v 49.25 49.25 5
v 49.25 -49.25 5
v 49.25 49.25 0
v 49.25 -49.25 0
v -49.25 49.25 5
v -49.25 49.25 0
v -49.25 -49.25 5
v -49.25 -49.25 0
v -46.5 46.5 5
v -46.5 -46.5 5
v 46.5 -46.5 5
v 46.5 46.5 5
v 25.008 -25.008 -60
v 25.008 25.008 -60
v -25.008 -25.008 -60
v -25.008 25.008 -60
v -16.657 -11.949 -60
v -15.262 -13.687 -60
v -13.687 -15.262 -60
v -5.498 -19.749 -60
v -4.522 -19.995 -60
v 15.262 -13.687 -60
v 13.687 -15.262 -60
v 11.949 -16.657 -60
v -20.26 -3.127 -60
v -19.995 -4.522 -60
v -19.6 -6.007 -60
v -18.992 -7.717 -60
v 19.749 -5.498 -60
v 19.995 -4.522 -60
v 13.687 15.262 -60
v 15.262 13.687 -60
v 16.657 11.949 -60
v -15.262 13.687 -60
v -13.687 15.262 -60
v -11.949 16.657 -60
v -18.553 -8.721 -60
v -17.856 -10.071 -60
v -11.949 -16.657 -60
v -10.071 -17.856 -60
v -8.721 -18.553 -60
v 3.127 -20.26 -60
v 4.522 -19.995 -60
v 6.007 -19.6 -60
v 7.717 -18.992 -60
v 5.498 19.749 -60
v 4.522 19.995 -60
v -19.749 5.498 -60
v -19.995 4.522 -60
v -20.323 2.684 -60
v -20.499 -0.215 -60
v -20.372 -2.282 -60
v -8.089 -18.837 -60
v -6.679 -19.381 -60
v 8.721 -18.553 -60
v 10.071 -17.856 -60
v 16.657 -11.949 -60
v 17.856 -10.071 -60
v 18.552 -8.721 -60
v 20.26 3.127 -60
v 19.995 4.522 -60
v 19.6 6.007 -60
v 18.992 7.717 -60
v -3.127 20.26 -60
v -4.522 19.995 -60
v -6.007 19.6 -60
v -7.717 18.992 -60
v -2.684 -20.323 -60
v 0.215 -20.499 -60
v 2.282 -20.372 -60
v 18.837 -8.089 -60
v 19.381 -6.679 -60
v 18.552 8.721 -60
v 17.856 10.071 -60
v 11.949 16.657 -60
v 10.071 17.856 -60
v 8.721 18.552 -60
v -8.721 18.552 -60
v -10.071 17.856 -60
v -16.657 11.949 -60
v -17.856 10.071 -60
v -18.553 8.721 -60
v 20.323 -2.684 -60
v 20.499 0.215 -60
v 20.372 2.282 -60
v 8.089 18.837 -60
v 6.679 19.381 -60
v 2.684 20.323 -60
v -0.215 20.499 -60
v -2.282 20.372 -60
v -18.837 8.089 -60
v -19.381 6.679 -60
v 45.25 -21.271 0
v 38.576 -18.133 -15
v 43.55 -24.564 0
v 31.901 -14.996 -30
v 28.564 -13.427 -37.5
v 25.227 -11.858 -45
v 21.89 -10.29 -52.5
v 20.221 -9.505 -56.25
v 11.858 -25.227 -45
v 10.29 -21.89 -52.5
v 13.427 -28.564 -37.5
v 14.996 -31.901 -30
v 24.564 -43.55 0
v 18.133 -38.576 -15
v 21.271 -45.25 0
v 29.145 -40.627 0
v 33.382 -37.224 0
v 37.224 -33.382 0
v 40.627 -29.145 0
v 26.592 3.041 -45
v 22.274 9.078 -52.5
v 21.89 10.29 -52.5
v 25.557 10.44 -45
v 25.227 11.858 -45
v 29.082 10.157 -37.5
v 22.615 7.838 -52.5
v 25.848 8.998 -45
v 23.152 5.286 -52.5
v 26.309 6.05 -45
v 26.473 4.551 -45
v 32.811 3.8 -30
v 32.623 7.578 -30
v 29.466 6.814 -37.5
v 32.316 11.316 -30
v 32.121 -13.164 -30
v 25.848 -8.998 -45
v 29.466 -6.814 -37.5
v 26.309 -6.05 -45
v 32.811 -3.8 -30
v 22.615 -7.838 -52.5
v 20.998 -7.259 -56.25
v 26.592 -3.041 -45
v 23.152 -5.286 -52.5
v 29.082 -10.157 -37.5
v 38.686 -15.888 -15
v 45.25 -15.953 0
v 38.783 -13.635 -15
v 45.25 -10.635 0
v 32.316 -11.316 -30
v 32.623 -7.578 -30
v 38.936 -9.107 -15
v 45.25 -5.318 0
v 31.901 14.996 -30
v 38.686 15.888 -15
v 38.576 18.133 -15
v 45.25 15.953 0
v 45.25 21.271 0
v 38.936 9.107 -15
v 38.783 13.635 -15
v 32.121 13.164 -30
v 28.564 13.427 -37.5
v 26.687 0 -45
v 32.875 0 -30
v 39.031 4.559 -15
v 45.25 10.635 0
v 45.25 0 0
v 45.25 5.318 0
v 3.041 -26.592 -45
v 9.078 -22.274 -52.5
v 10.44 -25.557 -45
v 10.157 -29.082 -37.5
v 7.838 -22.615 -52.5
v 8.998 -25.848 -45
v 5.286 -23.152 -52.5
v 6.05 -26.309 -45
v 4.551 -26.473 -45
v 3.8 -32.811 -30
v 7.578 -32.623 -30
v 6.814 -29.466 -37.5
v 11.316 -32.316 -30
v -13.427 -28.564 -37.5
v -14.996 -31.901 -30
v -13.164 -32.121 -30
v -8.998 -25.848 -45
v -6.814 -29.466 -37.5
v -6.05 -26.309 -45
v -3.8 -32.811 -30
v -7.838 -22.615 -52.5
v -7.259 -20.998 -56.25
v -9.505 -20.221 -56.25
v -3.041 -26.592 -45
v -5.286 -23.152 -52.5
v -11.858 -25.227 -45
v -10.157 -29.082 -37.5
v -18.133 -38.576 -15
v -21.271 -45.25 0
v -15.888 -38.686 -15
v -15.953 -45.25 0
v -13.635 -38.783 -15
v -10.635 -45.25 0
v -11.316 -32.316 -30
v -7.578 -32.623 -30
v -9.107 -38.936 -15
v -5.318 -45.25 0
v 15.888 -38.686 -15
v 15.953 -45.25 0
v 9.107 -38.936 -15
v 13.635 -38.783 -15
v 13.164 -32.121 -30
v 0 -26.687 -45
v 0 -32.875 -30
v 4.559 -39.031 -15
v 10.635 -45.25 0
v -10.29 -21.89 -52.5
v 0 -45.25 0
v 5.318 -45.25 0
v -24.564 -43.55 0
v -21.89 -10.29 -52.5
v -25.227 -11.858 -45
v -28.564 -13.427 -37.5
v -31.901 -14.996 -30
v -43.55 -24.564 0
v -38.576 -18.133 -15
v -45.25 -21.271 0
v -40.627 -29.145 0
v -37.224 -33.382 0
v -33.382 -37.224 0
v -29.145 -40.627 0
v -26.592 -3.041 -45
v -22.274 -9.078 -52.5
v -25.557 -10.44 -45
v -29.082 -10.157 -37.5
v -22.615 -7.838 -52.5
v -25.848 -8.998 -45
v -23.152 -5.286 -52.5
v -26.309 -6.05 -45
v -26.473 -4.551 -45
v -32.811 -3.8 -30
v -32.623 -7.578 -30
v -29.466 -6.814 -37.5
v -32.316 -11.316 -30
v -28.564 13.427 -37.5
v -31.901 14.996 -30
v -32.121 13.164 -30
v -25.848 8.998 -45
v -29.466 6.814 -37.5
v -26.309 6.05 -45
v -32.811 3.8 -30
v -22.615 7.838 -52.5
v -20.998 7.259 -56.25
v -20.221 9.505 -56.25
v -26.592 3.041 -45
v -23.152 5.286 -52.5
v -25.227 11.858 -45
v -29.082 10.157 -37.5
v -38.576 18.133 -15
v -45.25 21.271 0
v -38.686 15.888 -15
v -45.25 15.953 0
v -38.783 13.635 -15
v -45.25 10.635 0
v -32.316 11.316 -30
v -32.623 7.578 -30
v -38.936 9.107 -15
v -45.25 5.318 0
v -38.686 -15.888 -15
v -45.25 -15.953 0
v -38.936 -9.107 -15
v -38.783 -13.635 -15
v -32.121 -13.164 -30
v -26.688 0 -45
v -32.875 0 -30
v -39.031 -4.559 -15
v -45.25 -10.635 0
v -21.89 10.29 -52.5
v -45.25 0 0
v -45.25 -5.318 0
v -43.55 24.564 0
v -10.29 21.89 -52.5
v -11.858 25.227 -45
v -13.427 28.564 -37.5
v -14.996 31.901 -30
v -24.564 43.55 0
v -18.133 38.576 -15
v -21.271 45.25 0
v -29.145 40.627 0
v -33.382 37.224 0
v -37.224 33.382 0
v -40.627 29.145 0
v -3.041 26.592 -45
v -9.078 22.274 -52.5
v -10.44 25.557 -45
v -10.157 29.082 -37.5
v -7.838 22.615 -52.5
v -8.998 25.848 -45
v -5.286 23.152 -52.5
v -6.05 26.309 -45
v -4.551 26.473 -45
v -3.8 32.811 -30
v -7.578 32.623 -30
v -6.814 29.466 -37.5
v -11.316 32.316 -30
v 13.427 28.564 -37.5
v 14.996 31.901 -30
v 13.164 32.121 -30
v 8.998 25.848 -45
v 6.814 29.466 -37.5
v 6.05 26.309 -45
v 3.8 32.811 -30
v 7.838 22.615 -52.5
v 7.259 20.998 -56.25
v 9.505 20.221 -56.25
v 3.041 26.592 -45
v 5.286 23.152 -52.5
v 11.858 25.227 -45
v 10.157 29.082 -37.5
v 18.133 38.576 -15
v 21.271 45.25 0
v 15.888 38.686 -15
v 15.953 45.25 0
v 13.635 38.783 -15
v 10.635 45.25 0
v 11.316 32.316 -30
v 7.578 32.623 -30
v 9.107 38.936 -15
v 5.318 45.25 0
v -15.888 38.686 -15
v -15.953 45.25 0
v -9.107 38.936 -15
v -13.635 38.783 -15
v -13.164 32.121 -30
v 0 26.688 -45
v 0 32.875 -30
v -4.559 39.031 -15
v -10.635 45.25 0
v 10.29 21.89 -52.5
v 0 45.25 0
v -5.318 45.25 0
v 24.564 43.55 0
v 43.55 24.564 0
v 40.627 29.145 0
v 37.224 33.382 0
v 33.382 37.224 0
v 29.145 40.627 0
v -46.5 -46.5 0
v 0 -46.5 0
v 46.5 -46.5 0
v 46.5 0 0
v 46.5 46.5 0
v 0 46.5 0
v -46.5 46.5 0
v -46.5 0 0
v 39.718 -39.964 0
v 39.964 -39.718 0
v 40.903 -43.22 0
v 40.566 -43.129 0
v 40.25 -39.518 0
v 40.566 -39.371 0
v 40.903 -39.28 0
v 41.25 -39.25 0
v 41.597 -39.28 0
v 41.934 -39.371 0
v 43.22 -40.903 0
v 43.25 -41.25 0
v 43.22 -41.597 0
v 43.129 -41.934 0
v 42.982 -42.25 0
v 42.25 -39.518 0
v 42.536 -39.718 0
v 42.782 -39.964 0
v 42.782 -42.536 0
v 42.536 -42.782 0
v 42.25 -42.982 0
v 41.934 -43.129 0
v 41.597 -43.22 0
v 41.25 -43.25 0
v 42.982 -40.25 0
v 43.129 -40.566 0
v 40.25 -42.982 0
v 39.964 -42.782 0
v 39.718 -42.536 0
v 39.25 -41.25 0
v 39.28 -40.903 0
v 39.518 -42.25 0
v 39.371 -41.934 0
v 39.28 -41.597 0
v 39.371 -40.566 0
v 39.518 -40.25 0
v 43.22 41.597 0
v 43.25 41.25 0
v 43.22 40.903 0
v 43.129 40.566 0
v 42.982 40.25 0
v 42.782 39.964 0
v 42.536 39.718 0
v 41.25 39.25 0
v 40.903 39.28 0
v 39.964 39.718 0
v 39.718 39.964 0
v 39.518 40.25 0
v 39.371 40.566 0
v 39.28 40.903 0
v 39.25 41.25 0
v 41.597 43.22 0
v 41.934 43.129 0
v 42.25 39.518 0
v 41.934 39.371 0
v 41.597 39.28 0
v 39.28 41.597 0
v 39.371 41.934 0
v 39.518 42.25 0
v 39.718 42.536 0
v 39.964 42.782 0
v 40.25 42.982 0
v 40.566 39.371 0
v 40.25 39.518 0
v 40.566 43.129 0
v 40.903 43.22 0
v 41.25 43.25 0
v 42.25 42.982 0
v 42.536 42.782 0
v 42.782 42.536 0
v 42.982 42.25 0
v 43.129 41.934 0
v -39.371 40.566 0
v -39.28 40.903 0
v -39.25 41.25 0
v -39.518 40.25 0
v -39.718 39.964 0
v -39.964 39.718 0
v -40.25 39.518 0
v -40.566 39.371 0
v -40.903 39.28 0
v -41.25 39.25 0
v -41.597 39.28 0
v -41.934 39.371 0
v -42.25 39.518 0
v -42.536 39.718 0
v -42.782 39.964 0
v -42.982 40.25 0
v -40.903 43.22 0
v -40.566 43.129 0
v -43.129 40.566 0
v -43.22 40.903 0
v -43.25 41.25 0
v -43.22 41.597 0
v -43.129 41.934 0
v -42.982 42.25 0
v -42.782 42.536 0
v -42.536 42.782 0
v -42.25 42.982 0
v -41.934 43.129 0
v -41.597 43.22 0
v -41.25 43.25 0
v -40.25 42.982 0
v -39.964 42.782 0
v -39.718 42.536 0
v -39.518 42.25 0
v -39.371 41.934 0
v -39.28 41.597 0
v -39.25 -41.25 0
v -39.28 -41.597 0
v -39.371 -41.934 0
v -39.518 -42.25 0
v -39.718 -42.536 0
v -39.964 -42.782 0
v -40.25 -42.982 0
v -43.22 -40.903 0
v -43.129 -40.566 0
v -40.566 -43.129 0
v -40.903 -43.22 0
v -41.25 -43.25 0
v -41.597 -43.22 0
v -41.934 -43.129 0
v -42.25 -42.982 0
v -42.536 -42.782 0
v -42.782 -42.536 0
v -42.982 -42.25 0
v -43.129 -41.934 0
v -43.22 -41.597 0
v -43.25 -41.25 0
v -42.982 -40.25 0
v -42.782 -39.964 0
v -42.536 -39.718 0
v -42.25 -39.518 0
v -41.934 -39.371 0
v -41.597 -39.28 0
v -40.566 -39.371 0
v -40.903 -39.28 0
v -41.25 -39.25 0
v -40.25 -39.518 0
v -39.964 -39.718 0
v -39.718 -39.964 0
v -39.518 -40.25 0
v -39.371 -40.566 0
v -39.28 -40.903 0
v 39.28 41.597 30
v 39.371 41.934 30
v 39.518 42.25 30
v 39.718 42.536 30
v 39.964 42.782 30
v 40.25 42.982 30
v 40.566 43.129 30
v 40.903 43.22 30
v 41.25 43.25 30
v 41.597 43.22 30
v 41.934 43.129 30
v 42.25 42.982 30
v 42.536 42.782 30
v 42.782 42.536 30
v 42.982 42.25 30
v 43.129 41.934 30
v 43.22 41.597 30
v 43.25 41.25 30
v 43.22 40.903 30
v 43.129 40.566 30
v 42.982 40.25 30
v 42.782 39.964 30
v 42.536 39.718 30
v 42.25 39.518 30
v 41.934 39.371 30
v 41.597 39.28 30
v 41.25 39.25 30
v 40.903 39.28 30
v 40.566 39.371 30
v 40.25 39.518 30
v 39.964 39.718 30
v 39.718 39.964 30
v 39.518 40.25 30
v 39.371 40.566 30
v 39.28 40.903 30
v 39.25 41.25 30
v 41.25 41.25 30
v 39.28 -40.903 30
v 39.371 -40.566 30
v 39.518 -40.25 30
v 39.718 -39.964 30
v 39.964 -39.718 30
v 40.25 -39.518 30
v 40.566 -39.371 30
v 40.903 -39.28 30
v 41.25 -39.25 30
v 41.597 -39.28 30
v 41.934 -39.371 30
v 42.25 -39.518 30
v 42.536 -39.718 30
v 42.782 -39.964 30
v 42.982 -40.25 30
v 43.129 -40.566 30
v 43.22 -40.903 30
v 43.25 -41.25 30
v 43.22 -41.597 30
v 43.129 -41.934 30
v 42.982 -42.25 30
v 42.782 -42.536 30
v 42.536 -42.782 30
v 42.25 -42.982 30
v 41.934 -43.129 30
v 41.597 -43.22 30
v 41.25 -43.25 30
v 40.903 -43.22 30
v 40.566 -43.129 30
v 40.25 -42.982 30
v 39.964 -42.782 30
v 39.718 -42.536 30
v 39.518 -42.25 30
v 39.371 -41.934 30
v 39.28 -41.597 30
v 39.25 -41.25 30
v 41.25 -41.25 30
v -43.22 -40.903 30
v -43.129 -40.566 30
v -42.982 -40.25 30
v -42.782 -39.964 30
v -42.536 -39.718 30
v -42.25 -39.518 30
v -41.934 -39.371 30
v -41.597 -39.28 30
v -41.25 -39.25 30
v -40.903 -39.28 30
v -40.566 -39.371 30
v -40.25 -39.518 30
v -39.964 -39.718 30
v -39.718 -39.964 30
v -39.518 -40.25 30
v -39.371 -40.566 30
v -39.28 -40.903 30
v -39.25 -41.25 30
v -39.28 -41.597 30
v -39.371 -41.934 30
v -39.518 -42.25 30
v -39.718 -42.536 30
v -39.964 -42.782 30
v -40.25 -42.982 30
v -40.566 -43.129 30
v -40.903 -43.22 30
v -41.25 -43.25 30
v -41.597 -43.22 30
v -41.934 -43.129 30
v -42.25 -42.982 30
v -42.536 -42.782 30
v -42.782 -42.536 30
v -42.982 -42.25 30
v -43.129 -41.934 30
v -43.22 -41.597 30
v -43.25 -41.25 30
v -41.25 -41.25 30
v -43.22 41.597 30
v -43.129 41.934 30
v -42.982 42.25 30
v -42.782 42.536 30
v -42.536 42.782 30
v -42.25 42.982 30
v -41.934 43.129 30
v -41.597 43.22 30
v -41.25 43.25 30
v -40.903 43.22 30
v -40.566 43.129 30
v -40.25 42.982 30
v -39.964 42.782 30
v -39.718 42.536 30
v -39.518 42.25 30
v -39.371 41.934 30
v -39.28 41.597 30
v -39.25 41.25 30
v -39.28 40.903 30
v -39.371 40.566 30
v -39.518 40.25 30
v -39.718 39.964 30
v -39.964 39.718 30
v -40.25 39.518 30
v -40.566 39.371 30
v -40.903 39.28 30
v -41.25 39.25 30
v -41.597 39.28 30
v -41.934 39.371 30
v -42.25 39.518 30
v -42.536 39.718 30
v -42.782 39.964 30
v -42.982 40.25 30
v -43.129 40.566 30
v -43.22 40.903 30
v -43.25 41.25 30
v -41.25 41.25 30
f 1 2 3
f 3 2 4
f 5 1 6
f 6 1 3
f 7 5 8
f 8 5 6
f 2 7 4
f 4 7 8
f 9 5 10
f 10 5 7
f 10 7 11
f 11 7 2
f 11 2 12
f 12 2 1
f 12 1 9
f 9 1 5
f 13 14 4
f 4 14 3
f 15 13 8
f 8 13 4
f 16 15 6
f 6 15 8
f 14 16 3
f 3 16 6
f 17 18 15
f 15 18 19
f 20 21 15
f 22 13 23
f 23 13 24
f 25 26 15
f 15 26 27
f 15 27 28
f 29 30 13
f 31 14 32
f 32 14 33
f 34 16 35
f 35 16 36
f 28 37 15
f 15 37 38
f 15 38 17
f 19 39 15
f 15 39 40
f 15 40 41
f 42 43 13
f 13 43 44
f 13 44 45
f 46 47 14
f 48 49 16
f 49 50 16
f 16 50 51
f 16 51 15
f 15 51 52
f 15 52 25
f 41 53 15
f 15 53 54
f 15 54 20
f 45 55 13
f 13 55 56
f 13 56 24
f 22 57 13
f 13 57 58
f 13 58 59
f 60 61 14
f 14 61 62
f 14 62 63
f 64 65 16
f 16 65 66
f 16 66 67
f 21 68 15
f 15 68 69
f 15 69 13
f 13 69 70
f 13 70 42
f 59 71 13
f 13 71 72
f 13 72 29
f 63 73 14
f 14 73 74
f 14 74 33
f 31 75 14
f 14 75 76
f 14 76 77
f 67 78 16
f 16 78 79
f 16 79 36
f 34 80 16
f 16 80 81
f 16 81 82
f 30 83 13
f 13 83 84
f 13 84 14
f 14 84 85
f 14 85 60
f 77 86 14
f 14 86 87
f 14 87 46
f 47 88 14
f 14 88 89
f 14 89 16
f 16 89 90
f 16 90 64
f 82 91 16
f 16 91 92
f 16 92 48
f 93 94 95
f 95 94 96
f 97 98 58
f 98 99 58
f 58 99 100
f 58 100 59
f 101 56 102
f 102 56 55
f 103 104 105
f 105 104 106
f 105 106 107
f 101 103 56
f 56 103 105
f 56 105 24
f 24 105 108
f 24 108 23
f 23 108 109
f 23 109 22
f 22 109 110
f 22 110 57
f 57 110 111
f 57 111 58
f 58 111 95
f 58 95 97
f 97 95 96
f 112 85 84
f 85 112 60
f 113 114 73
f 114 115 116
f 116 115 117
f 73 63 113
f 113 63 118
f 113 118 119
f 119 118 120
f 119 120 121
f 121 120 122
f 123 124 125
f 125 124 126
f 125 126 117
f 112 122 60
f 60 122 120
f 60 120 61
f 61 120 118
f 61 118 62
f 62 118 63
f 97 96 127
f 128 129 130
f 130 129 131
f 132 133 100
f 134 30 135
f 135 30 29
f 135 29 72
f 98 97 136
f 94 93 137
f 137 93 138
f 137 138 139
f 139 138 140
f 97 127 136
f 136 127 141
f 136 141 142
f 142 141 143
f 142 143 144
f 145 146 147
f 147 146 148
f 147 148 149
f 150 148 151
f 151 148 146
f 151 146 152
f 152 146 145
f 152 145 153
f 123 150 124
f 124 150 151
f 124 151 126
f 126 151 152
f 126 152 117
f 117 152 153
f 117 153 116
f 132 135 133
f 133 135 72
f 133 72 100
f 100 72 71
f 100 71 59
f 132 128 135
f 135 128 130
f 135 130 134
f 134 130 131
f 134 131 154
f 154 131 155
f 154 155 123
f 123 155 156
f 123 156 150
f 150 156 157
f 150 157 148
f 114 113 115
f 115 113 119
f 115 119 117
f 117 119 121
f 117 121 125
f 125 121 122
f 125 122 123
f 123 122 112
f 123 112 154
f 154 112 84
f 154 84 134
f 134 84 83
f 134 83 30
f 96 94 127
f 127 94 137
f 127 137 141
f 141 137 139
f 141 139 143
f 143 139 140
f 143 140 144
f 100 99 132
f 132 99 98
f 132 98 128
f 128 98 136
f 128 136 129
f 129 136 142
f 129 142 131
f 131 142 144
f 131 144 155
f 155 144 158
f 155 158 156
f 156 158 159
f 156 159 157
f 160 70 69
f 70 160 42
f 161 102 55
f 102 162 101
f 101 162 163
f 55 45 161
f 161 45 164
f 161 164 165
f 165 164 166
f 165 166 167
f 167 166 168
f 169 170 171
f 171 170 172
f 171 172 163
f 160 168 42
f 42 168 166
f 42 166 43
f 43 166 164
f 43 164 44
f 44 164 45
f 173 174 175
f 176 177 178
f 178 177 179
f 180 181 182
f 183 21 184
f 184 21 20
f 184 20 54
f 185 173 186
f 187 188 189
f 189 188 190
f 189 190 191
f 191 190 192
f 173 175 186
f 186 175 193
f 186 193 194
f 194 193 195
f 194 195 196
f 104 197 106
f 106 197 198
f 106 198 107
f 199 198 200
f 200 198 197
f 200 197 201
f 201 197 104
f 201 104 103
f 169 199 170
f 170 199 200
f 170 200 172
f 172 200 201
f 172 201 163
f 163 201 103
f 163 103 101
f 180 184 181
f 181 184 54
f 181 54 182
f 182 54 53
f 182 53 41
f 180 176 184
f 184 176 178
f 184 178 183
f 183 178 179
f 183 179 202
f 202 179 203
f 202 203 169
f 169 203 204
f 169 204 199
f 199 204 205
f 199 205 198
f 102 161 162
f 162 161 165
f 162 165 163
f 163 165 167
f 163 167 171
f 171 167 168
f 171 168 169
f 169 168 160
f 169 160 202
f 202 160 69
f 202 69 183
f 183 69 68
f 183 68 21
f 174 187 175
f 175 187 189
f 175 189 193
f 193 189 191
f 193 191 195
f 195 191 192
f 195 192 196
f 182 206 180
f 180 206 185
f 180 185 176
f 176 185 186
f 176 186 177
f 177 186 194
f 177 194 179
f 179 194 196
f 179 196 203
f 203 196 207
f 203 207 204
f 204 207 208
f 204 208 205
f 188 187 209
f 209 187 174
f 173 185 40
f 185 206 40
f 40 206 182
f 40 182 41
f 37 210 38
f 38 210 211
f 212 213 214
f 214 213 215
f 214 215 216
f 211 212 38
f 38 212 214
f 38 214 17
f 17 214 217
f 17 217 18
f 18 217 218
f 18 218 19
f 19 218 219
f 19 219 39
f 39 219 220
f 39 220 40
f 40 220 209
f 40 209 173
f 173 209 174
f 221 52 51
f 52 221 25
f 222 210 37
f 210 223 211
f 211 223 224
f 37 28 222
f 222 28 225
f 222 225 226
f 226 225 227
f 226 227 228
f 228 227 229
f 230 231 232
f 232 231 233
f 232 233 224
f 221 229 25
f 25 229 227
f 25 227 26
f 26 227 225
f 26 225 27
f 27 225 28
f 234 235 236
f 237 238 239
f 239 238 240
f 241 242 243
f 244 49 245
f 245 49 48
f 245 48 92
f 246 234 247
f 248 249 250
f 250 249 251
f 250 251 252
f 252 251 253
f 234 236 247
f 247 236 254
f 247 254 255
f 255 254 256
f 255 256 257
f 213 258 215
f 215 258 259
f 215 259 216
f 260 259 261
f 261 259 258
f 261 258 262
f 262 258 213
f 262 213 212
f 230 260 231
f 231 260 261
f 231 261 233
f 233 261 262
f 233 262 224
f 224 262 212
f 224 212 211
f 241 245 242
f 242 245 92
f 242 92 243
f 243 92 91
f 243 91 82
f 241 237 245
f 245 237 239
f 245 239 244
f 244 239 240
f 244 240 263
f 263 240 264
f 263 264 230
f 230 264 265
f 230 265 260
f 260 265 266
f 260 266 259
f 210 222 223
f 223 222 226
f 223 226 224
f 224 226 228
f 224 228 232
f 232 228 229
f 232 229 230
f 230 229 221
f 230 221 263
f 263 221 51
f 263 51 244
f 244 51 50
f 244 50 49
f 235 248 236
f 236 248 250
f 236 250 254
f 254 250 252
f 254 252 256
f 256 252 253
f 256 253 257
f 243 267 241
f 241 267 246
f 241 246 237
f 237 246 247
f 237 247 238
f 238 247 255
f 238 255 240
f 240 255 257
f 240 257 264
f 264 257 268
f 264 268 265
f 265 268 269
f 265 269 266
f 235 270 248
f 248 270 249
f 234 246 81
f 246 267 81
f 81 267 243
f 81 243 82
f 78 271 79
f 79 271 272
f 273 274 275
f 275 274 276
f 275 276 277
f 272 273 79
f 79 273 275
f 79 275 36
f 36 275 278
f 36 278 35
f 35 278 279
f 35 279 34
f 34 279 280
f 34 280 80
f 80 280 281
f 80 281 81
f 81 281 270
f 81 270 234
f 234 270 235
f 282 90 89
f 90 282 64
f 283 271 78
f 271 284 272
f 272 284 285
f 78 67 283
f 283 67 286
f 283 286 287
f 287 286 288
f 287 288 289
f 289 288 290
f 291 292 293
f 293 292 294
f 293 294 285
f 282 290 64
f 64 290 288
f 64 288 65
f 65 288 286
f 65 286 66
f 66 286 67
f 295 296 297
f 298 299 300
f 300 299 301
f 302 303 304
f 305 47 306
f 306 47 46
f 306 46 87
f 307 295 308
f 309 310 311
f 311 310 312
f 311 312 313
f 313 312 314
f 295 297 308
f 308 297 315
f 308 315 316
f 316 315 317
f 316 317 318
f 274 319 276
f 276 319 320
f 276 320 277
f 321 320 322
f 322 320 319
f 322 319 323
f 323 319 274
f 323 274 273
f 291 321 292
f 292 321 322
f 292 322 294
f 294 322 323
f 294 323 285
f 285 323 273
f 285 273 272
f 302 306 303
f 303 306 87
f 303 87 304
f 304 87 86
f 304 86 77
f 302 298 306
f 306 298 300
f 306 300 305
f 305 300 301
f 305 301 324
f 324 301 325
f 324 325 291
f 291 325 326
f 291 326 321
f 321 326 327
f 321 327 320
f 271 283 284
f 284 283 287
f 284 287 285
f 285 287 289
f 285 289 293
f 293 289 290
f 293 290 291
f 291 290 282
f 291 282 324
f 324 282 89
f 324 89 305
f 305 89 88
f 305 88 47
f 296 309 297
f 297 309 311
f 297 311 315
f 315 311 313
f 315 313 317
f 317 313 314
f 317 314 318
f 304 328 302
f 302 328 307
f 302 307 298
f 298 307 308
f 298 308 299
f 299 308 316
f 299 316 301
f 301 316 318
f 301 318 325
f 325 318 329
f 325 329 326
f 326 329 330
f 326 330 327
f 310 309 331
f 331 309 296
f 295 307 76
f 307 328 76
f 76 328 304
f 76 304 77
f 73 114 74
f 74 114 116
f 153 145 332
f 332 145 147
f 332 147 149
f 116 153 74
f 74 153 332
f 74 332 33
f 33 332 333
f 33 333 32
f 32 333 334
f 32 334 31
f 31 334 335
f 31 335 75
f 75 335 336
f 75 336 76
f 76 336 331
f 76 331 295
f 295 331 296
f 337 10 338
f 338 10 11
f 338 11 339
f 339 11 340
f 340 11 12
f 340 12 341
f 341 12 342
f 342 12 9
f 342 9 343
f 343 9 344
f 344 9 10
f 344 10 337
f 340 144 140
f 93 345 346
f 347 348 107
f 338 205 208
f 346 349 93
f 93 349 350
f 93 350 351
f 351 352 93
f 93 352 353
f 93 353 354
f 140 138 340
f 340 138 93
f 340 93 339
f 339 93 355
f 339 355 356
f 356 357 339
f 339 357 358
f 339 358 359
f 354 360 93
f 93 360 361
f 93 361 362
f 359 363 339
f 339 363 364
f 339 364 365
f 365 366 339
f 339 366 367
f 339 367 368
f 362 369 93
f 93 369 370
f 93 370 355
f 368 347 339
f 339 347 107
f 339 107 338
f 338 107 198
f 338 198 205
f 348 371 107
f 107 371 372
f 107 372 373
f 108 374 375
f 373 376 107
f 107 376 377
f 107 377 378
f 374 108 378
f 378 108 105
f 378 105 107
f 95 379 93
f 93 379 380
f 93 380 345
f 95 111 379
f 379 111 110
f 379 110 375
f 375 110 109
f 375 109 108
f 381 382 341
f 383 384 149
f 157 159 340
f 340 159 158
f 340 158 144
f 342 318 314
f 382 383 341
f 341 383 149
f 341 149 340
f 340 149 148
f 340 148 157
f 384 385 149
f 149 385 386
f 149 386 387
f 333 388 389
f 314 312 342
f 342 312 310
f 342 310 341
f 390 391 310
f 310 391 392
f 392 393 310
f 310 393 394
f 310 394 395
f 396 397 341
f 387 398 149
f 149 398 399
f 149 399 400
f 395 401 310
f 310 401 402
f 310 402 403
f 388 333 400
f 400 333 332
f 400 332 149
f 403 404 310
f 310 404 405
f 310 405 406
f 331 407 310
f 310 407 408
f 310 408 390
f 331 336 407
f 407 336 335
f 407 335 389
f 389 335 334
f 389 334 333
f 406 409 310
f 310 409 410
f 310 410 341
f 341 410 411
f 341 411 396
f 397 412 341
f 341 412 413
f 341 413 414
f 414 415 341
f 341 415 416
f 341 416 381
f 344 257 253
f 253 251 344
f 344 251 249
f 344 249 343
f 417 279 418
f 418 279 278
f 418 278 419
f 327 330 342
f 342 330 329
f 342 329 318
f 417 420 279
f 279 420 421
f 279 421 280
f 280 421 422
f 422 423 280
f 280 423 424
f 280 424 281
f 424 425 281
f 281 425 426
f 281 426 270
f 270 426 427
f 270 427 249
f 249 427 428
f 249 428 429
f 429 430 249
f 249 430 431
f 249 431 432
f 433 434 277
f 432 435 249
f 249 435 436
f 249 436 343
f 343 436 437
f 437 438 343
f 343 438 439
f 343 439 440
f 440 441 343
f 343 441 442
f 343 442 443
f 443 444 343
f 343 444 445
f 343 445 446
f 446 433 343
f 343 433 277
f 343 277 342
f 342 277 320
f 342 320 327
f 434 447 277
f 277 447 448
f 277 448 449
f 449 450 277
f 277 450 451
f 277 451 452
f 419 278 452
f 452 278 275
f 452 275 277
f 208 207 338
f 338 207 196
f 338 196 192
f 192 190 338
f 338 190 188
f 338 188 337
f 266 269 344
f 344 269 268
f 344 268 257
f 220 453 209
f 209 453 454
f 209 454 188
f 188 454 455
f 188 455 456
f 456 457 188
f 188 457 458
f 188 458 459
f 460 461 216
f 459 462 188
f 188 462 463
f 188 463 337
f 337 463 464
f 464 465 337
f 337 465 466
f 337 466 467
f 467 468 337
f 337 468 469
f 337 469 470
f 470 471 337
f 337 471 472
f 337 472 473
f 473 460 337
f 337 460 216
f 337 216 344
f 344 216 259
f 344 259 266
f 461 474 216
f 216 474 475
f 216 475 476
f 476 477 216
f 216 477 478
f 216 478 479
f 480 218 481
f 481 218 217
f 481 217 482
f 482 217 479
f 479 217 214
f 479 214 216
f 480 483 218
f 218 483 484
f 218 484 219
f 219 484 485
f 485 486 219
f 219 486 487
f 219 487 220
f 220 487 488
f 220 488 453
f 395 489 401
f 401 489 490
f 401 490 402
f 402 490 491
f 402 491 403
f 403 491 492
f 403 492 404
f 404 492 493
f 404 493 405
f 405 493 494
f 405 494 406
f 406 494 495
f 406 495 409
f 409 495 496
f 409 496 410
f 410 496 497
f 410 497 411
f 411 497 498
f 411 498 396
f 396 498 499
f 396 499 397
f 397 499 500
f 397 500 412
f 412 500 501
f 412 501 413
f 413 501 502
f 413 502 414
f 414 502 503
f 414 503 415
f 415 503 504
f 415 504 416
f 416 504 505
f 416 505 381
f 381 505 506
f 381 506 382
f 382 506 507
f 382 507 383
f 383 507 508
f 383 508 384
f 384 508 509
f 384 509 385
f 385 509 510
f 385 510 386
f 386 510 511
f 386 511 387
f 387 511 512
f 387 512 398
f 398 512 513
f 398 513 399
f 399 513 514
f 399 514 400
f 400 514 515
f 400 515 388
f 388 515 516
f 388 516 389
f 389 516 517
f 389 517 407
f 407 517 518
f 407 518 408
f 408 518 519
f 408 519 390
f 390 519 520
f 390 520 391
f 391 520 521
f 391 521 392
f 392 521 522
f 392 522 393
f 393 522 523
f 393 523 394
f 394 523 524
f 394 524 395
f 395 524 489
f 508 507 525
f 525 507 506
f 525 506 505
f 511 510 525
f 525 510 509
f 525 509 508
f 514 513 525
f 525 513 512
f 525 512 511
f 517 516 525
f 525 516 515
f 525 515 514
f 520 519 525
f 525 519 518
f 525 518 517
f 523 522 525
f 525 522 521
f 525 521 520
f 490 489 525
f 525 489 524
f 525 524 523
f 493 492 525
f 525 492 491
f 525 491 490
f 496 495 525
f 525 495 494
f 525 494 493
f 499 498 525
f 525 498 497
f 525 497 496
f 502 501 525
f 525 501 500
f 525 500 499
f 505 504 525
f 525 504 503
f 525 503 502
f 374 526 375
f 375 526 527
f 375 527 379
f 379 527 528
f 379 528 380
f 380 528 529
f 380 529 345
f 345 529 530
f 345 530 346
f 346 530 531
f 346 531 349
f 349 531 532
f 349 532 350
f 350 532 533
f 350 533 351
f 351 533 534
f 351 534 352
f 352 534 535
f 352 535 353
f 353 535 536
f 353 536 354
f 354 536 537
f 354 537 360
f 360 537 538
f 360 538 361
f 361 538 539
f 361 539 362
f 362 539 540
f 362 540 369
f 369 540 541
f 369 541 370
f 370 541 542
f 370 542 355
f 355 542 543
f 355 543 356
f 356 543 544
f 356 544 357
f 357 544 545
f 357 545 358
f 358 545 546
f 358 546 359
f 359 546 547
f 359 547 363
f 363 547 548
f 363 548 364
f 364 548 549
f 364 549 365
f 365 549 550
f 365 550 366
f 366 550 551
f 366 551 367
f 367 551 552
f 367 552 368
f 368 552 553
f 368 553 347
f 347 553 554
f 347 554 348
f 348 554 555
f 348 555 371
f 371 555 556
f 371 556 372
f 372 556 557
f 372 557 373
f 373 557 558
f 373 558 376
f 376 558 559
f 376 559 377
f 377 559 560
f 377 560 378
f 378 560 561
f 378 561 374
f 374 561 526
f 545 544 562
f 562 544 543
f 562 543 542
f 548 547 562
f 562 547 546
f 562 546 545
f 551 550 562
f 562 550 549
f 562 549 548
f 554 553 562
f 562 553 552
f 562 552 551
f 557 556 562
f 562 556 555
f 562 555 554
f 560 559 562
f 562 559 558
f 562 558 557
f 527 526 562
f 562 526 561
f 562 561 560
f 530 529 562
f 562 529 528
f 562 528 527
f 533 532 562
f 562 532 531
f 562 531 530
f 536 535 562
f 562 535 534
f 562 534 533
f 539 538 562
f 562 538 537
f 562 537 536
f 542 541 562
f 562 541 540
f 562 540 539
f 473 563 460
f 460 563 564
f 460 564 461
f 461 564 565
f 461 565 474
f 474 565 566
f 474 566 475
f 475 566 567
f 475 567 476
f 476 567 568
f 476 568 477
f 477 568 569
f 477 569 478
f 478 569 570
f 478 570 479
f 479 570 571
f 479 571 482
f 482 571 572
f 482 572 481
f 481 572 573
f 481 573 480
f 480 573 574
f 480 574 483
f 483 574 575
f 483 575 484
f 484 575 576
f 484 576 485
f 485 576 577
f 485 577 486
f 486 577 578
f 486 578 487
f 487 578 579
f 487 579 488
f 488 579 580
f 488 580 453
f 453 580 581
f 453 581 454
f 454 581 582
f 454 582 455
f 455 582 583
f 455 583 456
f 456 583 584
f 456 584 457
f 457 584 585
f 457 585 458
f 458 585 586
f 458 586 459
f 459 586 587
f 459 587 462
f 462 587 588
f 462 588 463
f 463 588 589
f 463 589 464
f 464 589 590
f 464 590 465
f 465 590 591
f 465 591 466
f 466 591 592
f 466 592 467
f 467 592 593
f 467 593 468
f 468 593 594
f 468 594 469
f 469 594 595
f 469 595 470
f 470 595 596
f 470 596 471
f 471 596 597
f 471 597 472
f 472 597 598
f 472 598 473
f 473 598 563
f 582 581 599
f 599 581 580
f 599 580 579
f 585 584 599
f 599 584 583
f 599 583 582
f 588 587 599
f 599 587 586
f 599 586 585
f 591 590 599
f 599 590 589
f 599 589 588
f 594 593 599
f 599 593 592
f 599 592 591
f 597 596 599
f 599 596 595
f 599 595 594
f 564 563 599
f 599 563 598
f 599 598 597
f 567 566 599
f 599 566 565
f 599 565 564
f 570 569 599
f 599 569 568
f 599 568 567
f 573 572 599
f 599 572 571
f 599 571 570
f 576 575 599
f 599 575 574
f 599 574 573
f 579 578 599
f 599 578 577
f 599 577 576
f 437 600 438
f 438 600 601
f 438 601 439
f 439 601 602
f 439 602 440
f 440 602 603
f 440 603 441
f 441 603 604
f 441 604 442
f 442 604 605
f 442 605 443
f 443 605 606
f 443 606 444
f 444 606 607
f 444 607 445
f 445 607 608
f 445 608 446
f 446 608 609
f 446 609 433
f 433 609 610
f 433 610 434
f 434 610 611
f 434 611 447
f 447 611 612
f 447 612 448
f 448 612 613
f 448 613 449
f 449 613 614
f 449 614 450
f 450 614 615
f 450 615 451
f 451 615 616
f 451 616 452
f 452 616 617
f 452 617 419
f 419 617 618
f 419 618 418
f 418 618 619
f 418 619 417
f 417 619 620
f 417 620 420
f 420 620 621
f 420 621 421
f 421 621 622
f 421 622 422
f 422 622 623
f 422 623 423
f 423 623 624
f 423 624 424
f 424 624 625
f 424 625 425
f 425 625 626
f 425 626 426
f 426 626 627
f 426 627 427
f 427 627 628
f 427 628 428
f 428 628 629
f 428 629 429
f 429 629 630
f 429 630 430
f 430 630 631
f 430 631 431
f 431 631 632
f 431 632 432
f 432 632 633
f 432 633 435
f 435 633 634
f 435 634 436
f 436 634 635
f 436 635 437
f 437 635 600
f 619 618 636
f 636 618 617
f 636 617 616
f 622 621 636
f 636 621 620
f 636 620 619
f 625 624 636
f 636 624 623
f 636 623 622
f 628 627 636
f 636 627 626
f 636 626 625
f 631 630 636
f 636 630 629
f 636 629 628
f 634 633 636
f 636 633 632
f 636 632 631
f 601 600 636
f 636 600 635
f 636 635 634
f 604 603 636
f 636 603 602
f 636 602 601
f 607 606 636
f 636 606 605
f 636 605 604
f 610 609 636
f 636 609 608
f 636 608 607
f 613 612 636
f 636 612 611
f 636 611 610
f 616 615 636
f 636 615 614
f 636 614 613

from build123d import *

# Parameters (mm, degrees)
SKIZZE1_W                       = 98.5
SKIZZE1_H                       = 98.5
SKIZZE1_W_2                     = 90.5
SKIZZE1_H_2                     = 90.5
AUFSATZ_LINEAR_AUSTRAGEN2_DEPTH = 5
SKIZZE6_W                       = 98.5
SKIZZE6_H                       = 98.5
AUFSATZ_LINEAR_AUSTRAGEN4_DEPTH = 60
AUFSATZ_LINEAR_AUSTRAGEN4_TAPER = 22
SKIZZE7_W                       = 93
SKIZZE7_H                       = 93
SCHNITT_LINEAR_AUSTRAGEN1_DEPTH = 5
SKIZZE10_R                      = 2
AUFSATZ_LINEAR_AUSTRAGEN5_DEPTH = 30


with BuildPart() as part:
    # Skizze1 → Aufsatz-Linear austragen2 (new body)
    # profile 1 of 5: a face of its own
    with BuildSketch(Plane.XY):
        Rectangle(SKIZZE1_W, SKIZZE1_H)
        Rectangle(SKIZZE1_W_2, SKIZZE1_H_2, mode=Mode.SUBTRACT)
    # profile 2 of 5: a face of its own
    with BuildSketch(Plane.XY):
        with BuildLine():
            Line((-45.25, 45.25), (-45.25, 21.270578271))
            ThreePointArc((-45.25, 21.270578271), (-35.355339059, 35.355339059), (-21.270578271, 45.25))
            Line((-21.270578271, 45.25), (-45.25, 45.25))
        make_face()
    # profile 3 of 5: a face of its own
    with BuildSketch(Plane.XY):
        with BuildLine():
            ThreePointArc((21.270578271, 45.25), (35.355339059, 35.355339059), (45.25, 21.270578271))
            Line((45.25, 21.270578271), (45.25, 45.25))
            Line((45.25, 45.25), (21.270578271, 45.25))
        make_face()
    # profile 4 of 5: a face of its own
    with BuildSketch(Plane.XY):
        with BuildLine():
            ThreePointArc((45.25, -21.270578271), (35.355339059, -35.355339059), (21.270578271, -45.25))
            Line((21.270578271, -45.25), (45.25, -45.25))
            Line((45.25, -45.25), (45.25, -21.270578271))
        make_face()
    # profile 5 of 5: a face of its own
    with BuildSketch(Plane.XY):
        with BuildLine():
            Line((-45.25, -21.270578271), (-45.25, -45.25))
            Line((-45.25, -45.25), (-21.270578271, -45.25))
            ThreePointArc((-21.270578271, -45.25), (-35.355339059, -35.355339059), (-45.25, -21.270578271))
        make_face()
    extrude(amount=AUFSATZ_LINEAR_AUSTRAGEN2_DEPTH)

    # Skizze6 → Aufsatz-Linear austragen4 (add)
    with BuildSketch(Plane(origin=(0, 0, 0), x_dir=(-1, 0, 0), z_dir=(0, 0, -1))):
        Rectangle(SKIZZE6_W, SKIZZE6_H)
    extrude(amount=AUFSATZ_LINEAR_AUSTRAGEN4_DEPTH, taper=AUFSATZ_LINEAR_AUSTRAGEN4_TAPER)

    # Schnitt-Ausformung4: read off the stored shape, not the designer's step
    # Schnitt-Ausformung4: loft between two sections, ruled curve by curve
    schnitt_ausformung4_from = [
        Edge.make_bspline([(45.25, 21.270578271, 0), (45.25, 17.725481893, 0), (45.25, 14.180385514, 0), (45.25, 7.090192757, 0), (45.25, 3.545096379, 0), (45.25, -3.545096379, 0), (45.25, -7.090192757, 0), (45.25, -14.180385514, 0), (45.25, -17.725481893, 0), (45.25, -21.270578271, 0)], [0, 0, 0, 0, 0.25, 0.25, 0.5, 0.5, 0.75, 0.75, 1, 1, 1, 1], 3),
        Edge.make_bspline([(21.270578271, -45.25, 0), (17.725481893, -45.25, 0), (14.180385514, -45.25, 0), (7.090192757, -45.25, 0), (3.545096379, -45.25, 0), (-3.545096379, -45.25, 0), (-7.090192757, -45.25, 0), (-14.180385514, -45.25, 0), (-17.725481893, -45.25, 0), (-21.270578271, -45.25, 0)], [0, 0, 0, 0, 0.25, 0.25, 0.5, 0.5, 0.75, 0.75, 1, 1, 1, 1], 3),
        Edge.make_bspline([(-45.25, -21.270578271, 0), (-45.25, -17.725481893, 0), (-45.25, -14.180385514, 0), (-45.25, -7.090192757, 0), (-45.25, -3.545096379, 0), (-45.25, 3.545096379, 0), (-45.25, 7.090192757, 0), (-45.25, 14.180385514, 0), (-45.25, 17.725481893, 0), (-45.25, 21.270578271, 0)], [0, 0, 0, 0, 0.25, 0.25, 0.5, 0.5, 0.75, 0.75, 1, 1, 1, 1], 3),
        Edge.make_bspline([(-21.270578271, 45.25, 0), (-17.725481893, 45.25, 0), (-14.180385514, 45.25, 0), (-7.090192757, 45.25, 0), (-3.545096379, 45.25, 0), (3.545096379, 45.25, 0), (7.090192757, 45.25, 0), (14.180385514, 45.25, 0), (17.725481893, 45.25, 0), (21.270578271, 45.25, 0)], [0, 0, 0, 0, 0.25, 0.25, 0.5, 0.5, 0.75, 0.75, 1, 1, 1, 1], 3),
        Edge.make_three_point_arc((21.270578271, -45.25, 0), (35.355339059, -35.355339059, 0), (45.25, -21.270578271, 0)),
        Edge.make_three_point_arc((-45.25, -21.270578271, 0), (-35.355339059, -35.355339059, 0), (-21.270578271, -45.25, 0)),
        Edge.make_three_point_arc((-21.270578271, 45.25, 0), (-35.355339059, 35.355339059, 0), (-45.25, 21.270578271, 0)),
        Edge.make_three_point_arc((45.25, 21.270578271, 0), (35.355339059, 35.355339059, 0), (21.270578271, 45.25, 0)),
    ]
    schnitt_ausformung4_to = [
        Edge.make_bspline([(18.5525, 8.720937091, -60), (19.17083125, 7.40552908, -60), (19.662710025, 5.991613705, -60), (20.327568653, 3.051483732, -60), (20.5, 1.525973244, -60), (20.5, -1.525973244, -60), (20.327568653, -3.051483732, -60), (19.662710025, -5.991613705, -60), (19.17083125, -7.40552908, -60), (18.5525, -8.720937091, -60)], [0, 0, 0, 0, 0.25, 0.25, 0.5, 0.5, 0.75, 0.75, 1, 1, 1, 1], 3),
        Edge.make_bspline([(8.720937091, -18.5525, -60), (7.40552908, -19.17083125, -60), (5.991613705, -19.662710025, -60), (3.051483732, -20.327568653, -60), (1.525973244, -20.5, -60), (-1.525973244, -20.5, -60), (-3.051483732, -20.327568653, -60), (-5.991613705, -19.662710025, -60), (-7.40552908, -19.17083125, -60), (-8.720937091, -18.5525, -60)], [0, 0, 0, 0, 0.25, 0.25, 0.5, 0.5, 0.75, 0.75, 1, 1, 1, 1], 3),
        Edge.make_bspline([(-18.5525, -8.720937091, -60), (-19.17083125, -7.40552908, -60), (-19.662710025, -5.991613705, -60), (-20.327568653, -3.051483732, -60), (-20.5, -1.525973244, -60), (-20.5, 1.525973244, -60), (-20.327568653, 3.051483732, -60), (-19.662710025, 5.991613705, -60), (-19.17083125, 7.40552908, -60), (-18.5525, 8.720937091, -60)], [0, 0, 0, 0, 0.25, 0.25, 0.5, 0.5, 0.75, 0.75, 1, 1, 1, 1], 3),
        Edge.make_bspline([(-8.720937091, 18.5525, -60), (-7.40552908, 19.17083125, -60), (-5.991613705, 19.662710025, -60), (-3.051483732, 20.327568653, -60), (-1.525973244, 20.5, -60), (1.525973244, 20.5, -60), (3.051483732, 20.327568653, -60), (5.991613705, 19.662710025, -60), (7.40552908, 19.17083125, -60), (8.720937091, 18.5525, -60)], [0, 0, 0, 0, 0.25, 0.25, 0.5, 0.5, 0.75, 0.75, 1, 1, 1, 1], 3),
        Edge.make_three_point_arc((8.720937091, -18.5525, -60), (14.495689014, -14.495689014, -60), (18.5525, -8.720937091, -60)),
        Edge.make_three_point_arc((-18.5525, -8.720937091, -60), (-14.495689014, -14.495689014, -60), (-8.720937091, -18.5525, -60)),
        Edge.make_three_point_arc((-8.720937091, 18.5525, -60), (-14.495689014, 14.495689014, -60), (-18.5525, 8.720937091, -60)),
        Edge.make_three_point_arc((18.5525, 8.720937091, -60), (14.495689014, 14.495689014, -60), (8.720937091, 18.5525, -60)),
    ]
    schnitt_ausformung4 = Solid(Shell([*[Face.make_surface_from_curves(schnitt_ausformung4_from[k], schnitt_ausformung4_to[k]) for k in range(8)], Face(Wire(schnitt_ausformung4_from)), Face(Wire(schnitt_ausformung4_to))]))
    add(schnitt_ausformung4, mode=Mode.SUBTRACT)

    # Skizze7 → Schnitt-Linear austragen1 (cut)
    with BuildSketch(Plane.XY):
        Rectangle(SKIZZE7_W, SKIZZE7_H)
    extrude(amount=SCHNITT_LINEAR_AUSTRAGEN1_DEPTH, mode=Mode.SUBTRACT)

    # Skizze10 → Aufsatz-Linear austragen5 (add)
    with BuildSketch(Plane.XY):
        with Locations((41.25, 41.25)):
            Circle(SKIZZE10_R)
        with Locations((41.25, -41.25)):
            Circle(SKIZZE10_R)
        with Locations((-41.25, -41.25)):
            Circle(SKIZZE10_R)
        with Locations((-41.25, 41.25)):
            Circle(SKIZZE10_R)
    extrude(amount=AUFSATZ_LINEAR_AUSTRAGEN5_DEPTH)


solid = part.part
